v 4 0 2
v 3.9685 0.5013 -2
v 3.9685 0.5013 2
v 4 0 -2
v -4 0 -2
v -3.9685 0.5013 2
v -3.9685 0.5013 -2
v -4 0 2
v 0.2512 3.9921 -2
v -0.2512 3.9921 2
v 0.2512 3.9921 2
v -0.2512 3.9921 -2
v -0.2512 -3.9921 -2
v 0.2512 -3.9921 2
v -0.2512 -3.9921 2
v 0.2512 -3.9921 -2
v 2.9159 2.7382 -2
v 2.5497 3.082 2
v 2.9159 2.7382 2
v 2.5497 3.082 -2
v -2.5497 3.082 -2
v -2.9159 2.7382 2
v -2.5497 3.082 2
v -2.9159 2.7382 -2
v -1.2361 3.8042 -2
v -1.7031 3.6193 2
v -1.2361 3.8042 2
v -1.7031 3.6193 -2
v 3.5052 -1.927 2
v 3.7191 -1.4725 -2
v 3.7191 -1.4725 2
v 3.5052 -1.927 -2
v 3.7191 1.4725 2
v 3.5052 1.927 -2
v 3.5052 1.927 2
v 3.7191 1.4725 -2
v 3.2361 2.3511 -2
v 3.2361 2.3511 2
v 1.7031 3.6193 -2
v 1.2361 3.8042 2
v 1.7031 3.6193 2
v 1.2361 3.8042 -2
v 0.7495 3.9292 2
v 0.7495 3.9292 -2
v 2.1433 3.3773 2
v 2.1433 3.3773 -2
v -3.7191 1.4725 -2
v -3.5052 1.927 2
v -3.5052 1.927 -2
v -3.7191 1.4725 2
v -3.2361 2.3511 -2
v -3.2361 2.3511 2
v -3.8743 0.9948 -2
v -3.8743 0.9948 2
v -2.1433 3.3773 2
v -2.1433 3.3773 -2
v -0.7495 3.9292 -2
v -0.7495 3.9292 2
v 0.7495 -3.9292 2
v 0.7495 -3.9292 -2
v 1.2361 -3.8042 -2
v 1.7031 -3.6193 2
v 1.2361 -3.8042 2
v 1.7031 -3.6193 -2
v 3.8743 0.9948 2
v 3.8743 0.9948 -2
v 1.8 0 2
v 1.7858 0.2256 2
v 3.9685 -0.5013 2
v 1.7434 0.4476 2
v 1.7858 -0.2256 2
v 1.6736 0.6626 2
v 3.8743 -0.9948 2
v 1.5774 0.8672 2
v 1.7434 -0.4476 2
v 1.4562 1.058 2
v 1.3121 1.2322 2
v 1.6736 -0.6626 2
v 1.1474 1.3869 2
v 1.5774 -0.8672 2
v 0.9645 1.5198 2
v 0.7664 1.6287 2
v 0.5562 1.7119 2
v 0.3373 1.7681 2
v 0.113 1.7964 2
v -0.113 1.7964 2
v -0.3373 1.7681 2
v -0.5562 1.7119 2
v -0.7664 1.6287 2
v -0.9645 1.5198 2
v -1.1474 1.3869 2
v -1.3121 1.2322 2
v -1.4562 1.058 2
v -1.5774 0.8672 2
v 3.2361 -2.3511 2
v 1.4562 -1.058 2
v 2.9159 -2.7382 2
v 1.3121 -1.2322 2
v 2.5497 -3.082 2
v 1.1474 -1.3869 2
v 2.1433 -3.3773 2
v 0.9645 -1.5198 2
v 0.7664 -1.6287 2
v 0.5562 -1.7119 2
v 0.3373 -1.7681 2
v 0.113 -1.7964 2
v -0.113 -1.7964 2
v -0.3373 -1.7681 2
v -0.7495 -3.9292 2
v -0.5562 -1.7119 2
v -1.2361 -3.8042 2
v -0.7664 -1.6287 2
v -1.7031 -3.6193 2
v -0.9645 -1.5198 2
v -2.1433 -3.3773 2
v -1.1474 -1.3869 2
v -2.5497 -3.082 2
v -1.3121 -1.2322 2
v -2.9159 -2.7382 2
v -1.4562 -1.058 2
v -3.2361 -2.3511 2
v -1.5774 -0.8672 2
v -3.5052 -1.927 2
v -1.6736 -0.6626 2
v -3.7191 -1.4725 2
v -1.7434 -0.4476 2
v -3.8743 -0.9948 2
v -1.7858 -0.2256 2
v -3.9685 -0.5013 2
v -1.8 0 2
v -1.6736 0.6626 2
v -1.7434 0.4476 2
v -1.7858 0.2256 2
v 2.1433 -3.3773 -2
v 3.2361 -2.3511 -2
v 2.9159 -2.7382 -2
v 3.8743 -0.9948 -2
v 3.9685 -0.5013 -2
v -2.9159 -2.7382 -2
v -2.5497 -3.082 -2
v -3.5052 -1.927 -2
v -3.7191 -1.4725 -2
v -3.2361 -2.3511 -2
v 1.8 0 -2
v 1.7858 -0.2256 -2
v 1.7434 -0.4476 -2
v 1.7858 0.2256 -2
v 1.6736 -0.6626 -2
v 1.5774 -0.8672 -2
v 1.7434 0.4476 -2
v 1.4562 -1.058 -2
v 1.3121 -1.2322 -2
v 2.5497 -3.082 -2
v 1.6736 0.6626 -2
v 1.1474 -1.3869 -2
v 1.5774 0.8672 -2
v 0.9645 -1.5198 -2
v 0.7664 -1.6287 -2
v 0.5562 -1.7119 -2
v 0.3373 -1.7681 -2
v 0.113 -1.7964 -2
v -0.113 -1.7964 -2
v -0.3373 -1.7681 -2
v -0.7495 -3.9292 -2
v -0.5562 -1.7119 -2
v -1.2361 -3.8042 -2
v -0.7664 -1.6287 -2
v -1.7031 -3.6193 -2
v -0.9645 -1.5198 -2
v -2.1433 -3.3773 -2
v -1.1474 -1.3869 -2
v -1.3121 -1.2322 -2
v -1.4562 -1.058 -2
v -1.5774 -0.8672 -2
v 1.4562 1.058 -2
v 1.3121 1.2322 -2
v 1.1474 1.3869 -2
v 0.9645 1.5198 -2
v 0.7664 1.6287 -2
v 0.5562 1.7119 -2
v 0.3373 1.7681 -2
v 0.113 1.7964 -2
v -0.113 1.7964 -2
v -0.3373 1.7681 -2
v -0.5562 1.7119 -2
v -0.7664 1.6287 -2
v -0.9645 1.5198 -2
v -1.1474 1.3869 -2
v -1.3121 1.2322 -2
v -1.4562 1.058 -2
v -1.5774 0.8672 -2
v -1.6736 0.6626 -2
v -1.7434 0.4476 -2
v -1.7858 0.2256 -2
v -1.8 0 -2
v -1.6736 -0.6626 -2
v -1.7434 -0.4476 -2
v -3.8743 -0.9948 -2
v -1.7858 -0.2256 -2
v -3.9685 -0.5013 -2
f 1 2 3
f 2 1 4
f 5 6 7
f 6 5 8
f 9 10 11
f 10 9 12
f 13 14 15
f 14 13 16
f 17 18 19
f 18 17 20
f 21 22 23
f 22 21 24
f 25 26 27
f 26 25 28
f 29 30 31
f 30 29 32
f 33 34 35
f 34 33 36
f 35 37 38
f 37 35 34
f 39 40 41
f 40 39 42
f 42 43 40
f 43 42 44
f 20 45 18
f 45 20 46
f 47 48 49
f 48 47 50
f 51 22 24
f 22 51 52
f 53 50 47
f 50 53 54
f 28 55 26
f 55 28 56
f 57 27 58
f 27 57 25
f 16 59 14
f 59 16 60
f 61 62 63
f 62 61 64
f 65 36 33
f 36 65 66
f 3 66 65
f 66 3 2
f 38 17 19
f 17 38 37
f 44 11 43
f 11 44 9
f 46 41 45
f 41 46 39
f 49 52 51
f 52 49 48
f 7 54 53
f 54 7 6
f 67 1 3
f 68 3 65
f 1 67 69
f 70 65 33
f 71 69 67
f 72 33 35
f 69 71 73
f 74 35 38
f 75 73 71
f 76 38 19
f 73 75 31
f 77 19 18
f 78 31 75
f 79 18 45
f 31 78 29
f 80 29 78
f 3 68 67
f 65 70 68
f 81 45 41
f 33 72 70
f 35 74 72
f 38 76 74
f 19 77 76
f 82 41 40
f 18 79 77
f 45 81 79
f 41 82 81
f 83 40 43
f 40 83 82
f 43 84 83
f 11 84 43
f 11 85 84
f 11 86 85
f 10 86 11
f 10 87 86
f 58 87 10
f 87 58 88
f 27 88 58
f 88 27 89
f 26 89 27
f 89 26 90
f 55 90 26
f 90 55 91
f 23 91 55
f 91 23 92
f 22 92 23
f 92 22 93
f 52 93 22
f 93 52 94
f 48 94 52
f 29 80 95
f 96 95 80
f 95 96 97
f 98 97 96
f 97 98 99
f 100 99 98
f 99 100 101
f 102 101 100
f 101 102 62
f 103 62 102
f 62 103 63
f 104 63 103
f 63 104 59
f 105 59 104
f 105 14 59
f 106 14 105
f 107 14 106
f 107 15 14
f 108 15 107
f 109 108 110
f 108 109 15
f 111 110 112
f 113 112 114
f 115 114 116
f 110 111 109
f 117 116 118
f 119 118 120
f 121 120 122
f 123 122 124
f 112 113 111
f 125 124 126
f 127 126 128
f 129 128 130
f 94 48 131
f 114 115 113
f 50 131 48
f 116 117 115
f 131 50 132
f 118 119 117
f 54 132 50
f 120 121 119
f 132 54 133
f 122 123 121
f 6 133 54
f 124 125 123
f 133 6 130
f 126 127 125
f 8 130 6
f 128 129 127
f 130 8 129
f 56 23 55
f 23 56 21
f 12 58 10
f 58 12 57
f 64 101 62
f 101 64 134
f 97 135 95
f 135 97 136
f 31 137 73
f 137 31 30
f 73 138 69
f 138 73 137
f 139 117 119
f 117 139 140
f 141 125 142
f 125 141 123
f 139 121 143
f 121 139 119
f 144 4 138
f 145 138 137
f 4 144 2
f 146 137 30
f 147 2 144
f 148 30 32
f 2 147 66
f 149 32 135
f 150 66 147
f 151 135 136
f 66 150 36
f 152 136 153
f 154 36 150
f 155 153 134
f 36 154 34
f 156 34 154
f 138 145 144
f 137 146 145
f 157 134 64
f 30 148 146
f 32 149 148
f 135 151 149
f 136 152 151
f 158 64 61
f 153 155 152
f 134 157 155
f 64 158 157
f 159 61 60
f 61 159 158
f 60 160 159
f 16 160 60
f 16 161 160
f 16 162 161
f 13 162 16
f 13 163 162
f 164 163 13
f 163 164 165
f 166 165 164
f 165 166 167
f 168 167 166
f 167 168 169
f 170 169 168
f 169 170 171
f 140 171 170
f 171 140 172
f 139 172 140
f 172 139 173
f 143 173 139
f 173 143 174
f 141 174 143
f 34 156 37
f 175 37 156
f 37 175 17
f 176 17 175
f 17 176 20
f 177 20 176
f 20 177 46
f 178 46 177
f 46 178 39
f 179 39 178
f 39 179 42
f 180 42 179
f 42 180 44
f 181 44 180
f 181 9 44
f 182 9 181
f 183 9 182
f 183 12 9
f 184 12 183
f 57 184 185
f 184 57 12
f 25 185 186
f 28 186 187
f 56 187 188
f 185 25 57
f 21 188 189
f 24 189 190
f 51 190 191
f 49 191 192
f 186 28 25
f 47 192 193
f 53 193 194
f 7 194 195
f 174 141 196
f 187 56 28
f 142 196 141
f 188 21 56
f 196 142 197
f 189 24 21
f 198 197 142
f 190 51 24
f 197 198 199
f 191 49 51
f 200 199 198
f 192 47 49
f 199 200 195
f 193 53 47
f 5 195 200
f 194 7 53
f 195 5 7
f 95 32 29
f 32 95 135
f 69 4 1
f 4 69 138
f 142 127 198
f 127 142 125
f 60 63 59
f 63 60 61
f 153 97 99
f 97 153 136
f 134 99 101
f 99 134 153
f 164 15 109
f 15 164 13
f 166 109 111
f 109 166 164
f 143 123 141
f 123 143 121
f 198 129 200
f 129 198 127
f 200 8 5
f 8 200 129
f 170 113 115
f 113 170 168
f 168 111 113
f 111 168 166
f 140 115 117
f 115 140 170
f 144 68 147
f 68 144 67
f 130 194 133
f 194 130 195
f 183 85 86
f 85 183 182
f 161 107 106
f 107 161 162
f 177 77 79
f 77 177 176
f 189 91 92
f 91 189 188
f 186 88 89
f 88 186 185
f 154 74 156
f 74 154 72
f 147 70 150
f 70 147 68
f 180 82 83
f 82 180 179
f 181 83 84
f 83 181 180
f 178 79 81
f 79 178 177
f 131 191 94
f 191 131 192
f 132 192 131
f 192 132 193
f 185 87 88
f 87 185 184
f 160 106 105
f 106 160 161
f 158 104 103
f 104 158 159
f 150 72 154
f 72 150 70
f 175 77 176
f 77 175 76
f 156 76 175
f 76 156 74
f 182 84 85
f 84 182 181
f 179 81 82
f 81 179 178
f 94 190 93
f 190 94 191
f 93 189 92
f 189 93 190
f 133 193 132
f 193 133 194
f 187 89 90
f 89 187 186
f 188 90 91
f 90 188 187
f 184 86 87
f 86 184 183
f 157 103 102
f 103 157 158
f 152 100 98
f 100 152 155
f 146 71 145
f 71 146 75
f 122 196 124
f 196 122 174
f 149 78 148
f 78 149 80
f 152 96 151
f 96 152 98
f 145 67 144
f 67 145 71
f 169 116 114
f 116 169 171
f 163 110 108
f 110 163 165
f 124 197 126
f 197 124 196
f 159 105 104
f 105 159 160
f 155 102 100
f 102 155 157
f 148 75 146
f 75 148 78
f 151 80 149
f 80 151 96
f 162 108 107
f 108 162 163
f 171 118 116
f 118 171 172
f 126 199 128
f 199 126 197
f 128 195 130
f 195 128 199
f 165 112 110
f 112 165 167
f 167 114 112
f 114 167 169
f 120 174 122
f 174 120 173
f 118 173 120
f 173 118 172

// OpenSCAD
$fn = 50;


difference() {
	union() {
		translate(v = [0, 0, -2.0000000000]) {
			cylinder(h = 4, r = 4.0000000000);
		}
	}
	union() {
		translate(v = [0, 0, -100.0000000000]) {
			cylinder(h = 200, r = 1.8000000000);
		}
	}
}
